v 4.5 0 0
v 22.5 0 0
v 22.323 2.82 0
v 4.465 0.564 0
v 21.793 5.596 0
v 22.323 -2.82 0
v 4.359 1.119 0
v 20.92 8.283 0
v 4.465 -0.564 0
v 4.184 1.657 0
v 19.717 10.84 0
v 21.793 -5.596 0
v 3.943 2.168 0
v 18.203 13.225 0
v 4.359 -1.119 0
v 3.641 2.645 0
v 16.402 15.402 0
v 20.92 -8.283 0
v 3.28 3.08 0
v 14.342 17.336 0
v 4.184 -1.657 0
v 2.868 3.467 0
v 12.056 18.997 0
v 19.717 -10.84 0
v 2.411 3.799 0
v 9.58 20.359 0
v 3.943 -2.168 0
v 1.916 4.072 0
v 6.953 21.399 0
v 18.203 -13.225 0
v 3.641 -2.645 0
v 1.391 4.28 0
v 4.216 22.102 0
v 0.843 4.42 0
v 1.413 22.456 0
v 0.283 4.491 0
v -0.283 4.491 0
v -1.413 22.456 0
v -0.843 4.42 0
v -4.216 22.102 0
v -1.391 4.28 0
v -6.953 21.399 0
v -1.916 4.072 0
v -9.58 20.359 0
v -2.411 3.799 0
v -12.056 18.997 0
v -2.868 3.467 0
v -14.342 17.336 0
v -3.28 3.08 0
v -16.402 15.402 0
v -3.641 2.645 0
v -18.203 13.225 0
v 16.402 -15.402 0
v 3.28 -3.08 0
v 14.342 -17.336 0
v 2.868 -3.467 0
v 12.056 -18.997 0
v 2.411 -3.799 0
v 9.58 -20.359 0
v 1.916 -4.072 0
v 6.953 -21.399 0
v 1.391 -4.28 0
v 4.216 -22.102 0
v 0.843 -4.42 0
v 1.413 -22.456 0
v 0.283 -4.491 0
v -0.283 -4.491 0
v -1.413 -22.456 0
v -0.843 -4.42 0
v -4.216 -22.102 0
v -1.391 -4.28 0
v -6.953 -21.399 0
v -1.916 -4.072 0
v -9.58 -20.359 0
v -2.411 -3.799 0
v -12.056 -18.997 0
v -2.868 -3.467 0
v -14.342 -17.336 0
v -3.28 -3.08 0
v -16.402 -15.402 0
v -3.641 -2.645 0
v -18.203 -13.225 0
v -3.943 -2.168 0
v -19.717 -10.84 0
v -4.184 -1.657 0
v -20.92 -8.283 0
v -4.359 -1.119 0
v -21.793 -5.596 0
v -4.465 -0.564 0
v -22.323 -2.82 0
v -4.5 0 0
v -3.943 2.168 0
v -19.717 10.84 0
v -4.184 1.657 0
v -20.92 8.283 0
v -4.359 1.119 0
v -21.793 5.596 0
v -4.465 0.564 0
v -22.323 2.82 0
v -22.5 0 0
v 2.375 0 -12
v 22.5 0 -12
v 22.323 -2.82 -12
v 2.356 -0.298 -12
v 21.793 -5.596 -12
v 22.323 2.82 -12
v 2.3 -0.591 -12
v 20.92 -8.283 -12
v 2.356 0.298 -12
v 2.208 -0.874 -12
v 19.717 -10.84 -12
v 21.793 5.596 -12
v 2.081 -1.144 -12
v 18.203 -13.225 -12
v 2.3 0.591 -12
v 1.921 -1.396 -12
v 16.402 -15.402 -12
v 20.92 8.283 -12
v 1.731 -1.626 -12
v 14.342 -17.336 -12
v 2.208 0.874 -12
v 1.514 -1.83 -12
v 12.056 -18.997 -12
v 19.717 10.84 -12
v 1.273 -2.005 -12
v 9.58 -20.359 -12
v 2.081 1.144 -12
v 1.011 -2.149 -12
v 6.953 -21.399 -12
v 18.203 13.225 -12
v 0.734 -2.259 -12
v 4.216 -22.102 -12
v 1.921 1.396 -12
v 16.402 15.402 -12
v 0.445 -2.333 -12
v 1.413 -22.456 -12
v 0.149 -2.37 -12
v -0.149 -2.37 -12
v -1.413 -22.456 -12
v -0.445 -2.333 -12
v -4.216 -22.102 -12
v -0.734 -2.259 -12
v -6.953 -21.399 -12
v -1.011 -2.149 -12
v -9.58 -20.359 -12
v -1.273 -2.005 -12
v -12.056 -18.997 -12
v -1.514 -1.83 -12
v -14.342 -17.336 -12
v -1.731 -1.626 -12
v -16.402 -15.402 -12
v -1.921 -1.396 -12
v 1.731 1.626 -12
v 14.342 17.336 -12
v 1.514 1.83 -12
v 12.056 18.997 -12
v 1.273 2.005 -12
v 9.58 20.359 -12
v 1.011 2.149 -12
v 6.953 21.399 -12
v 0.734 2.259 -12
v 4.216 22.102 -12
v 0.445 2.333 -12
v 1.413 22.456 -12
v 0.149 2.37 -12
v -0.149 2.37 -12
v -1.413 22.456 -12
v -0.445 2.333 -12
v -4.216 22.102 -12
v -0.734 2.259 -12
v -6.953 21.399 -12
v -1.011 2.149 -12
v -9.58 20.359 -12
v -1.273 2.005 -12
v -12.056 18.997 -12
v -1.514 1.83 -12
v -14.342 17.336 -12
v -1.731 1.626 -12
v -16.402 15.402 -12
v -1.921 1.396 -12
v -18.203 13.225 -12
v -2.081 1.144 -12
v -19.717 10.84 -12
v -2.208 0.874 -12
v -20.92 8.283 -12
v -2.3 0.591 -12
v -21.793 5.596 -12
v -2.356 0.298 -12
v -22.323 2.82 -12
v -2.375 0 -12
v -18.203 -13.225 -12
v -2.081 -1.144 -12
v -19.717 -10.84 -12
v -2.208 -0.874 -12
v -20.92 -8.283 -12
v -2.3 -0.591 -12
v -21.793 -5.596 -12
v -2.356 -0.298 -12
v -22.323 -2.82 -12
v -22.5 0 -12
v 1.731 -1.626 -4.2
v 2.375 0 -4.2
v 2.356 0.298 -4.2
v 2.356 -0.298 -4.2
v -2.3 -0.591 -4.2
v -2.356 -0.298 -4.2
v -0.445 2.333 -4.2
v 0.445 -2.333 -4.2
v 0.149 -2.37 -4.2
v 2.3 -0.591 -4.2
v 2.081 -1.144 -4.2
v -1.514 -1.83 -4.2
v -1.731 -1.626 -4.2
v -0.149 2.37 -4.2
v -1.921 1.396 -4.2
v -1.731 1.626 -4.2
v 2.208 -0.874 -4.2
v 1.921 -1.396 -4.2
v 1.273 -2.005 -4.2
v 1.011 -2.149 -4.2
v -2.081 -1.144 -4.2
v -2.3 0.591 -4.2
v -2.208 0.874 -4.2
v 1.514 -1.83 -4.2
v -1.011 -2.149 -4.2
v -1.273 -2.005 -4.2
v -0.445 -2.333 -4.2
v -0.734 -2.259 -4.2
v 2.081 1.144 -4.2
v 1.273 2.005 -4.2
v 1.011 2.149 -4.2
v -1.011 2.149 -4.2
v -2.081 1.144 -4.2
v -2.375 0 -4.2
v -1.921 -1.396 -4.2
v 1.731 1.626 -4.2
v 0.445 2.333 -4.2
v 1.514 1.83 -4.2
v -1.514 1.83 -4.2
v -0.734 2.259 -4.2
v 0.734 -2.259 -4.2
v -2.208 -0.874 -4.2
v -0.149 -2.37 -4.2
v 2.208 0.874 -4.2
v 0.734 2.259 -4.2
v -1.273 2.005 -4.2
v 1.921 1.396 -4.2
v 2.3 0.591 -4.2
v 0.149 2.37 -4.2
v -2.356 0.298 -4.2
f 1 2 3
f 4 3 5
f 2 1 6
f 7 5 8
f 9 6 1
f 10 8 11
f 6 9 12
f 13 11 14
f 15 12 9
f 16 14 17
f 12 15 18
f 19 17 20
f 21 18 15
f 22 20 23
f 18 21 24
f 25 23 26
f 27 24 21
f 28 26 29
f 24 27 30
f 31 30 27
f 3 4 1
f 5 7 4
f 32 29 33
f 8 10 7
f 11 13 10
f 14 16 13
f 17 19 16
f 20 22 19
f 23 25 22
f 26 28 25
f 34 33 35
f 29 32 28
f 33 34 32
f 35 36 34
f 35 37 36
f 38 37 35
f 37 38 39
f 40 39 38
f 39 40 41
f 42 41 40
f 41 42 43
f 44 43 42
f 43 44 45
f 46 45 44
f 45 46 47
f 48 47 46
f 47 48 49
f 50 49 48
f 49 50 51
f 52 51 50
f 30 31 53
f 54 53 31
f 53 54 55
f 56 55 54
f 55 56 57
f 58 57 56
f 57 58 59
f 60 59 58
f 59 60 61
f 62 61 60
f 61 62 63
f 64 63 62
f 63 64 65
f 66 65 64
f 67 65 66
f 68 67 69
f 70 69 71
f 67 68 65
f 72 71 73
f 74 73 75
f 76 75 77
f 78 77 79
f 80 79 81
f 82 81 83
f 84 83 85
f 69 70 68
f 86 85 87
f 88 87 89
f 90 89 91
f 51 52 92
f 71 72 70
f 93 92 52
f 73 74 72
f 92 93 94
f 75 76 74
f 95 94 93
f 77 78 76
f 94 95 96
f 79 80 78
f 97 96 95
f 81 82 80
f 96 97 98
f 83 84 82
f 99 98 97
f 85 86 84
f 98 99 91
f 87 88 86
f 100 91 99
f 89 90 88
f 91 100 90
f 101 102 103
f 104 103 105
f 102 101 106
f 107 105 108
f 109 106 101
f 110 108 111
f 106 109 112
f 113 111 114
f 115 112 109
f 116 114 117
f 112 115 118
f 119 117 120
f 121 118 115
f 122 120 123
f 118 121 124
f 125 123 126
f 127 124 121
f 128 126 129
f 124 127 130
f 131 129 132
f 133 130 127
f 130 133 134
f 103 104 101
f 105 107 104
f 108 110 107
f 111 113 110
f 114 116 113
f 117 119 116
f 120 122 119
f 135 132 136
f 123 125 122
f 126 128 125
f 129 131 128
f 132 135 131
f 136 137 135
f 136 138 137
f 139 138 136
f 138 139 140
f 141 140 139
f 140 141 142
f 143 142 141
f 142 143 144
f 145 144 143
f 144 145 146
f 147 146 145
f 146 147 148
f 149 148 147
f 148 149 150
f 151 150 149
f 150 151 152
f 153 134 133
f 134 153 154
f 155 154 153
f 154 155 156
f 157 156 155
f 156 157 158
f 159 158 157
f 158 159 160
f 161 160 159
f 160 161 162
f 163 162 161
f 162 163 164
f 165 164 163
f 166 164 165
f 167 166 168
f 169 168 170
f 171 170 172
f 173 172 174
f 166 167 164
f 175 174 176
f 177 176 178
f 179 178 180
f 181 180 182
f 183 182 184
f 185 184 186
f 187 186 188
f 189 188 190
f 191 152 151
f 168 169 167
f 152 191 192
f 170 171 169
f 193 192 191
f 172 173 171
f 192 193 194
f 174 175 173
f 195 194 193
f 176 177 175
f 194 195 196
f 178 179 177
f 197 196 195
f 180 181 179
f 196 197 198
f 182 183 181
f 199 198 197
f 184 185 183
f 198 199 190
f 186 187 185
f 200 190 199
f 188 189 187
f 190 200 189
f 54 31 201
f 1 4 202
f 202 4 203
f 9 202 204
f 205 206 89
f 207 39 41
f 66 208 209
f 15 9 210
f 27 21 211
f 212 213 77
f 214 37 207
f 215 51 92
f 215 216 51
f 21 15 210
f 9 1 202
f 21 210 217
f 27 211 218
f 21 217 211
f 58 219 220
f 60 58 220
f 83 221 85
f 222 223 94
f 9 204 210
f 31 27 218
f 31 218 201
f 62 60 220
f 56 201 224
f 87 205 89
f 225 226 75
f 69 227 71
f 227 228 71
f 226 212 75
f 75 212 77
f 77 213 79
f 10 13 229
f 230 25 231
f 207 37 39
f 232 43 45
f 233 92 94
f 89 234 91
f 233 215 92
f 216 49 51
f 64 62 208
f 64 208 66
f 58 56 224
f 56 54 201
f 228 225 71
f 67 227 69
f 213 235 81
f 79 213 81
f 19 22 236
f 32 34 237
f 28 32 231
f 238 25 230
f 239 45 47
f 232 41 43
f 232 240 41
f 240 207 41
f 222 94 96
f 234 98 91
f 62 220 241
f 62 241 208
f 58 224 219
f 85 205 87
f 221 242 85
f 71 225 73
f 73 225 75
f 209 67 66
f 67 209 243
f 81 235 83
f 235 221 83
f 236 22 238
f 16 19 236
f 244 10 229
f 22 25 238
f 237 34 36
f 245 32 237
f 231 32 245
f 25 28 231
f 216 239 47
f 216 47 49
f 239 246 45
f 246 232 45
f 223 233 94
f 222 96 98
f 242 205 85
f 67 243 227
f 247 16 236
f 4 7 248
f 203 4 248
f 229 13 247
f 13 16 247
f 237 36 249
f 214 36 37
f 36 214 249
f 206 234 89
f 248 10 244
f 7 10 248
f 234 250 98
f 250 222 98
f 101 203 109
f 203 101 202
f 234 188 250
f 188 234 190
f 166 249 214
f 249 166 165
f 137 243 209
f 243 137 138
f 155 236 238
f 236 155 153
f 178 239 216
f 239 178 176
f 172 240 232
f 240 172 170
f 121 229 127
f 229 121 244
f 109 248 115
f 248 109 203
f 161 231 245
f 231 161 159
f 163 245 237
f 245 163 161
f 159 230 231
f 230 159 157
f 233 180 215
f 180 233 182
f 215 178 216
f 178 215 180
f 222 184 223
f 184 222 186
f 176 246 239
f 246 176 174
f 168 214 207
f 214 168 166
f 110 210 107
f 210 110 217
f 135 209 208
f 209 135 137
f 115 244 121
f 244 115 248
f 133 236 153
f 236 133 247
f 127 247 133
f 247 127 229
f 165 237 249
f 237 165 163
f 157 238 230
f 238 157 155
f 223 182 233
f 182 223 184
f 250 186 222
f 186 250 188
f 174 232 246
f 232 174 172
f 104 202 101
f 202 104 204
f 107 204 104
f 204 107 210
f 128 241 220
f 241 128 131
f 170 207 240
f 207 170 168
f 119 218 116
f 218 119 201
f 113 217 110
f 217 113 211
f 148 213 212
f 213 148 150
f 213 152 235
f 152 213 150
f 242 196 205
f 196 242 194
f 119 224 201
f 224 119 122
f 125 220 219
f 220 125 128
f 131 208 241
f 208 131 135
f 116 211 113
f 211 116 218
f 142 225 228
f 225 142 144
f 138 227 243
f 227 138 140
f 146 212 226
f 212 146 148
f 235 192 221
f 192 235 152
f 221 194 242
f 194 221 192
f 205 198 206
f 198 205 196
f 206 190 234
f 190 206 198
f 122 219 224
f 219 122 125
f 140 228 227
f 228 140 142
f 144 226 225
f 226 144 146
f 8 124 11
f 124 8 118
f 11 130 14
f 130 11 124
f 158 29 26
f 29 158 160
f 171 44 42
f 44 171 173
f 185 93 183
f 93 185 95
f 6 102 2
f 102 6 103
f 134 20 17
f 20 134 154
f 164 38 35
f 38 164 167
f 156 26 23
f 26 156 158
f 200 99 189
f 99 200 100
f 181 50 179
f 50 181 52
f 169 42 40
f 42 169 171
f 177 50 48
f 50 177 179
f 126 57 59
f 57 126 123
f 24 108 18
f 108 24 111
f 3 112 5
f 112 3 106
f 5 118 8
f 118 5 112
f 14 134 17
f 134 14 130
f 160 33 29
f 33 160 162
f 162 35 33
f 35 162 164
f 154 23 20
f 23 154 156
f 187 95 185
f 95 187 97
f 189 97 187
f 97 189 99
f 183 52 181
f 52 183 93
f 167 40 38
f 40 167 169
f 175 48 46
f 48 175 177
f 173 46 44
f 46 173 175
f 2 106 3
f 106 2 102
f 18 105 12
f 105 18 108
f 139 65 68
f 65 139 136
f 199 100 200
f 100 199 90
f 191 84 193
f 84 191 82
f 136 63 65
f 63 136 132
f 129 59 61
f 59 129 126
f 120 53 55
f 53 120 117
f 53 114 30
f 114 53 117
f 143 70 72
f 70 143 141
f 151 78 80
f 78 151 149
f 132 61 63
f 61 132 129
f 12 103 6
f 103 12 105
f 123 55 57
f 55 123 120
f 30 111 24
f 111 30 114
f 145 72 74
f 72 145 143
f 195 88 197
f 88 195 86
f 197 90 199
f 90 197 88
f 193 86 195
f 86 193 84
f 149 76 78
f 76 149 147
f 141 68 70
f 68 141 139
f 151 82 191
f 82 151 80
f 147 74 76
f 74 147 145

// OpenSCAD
$fn = 50;


difference() {
	union() {
		translate(v = [0, 0, -12.0000000000]) {
			cylinder(h = 12, r = 22.5000000000);
		}
	}
	union() {
		translate(v = [0, 0, 0]) {
			rotate(a = [0, 0, 0]) {
				difference() {
					union() {
						translate(v = [0, 0, -12.0000000000]) {
							cylinder(h = 12, r = 2.2500000000);
						}
						translate(v = [0, 0, -4.2000000000]) {
							cylinder(h = 4.2000000000, r1 = 2.3750000000, r2 = 4.5000000000);
						}
						translate(v = [0, 0, -12.0000000000]) {
							cylinder(h = 12, r = 2.3750000000);
						}
						translate(v = [0, 0, -12.0000000000]) {
							cylinder(h = 12, r = 2.2500000000);
						}
					}
					union();
				}
			}
		}
	}
}
